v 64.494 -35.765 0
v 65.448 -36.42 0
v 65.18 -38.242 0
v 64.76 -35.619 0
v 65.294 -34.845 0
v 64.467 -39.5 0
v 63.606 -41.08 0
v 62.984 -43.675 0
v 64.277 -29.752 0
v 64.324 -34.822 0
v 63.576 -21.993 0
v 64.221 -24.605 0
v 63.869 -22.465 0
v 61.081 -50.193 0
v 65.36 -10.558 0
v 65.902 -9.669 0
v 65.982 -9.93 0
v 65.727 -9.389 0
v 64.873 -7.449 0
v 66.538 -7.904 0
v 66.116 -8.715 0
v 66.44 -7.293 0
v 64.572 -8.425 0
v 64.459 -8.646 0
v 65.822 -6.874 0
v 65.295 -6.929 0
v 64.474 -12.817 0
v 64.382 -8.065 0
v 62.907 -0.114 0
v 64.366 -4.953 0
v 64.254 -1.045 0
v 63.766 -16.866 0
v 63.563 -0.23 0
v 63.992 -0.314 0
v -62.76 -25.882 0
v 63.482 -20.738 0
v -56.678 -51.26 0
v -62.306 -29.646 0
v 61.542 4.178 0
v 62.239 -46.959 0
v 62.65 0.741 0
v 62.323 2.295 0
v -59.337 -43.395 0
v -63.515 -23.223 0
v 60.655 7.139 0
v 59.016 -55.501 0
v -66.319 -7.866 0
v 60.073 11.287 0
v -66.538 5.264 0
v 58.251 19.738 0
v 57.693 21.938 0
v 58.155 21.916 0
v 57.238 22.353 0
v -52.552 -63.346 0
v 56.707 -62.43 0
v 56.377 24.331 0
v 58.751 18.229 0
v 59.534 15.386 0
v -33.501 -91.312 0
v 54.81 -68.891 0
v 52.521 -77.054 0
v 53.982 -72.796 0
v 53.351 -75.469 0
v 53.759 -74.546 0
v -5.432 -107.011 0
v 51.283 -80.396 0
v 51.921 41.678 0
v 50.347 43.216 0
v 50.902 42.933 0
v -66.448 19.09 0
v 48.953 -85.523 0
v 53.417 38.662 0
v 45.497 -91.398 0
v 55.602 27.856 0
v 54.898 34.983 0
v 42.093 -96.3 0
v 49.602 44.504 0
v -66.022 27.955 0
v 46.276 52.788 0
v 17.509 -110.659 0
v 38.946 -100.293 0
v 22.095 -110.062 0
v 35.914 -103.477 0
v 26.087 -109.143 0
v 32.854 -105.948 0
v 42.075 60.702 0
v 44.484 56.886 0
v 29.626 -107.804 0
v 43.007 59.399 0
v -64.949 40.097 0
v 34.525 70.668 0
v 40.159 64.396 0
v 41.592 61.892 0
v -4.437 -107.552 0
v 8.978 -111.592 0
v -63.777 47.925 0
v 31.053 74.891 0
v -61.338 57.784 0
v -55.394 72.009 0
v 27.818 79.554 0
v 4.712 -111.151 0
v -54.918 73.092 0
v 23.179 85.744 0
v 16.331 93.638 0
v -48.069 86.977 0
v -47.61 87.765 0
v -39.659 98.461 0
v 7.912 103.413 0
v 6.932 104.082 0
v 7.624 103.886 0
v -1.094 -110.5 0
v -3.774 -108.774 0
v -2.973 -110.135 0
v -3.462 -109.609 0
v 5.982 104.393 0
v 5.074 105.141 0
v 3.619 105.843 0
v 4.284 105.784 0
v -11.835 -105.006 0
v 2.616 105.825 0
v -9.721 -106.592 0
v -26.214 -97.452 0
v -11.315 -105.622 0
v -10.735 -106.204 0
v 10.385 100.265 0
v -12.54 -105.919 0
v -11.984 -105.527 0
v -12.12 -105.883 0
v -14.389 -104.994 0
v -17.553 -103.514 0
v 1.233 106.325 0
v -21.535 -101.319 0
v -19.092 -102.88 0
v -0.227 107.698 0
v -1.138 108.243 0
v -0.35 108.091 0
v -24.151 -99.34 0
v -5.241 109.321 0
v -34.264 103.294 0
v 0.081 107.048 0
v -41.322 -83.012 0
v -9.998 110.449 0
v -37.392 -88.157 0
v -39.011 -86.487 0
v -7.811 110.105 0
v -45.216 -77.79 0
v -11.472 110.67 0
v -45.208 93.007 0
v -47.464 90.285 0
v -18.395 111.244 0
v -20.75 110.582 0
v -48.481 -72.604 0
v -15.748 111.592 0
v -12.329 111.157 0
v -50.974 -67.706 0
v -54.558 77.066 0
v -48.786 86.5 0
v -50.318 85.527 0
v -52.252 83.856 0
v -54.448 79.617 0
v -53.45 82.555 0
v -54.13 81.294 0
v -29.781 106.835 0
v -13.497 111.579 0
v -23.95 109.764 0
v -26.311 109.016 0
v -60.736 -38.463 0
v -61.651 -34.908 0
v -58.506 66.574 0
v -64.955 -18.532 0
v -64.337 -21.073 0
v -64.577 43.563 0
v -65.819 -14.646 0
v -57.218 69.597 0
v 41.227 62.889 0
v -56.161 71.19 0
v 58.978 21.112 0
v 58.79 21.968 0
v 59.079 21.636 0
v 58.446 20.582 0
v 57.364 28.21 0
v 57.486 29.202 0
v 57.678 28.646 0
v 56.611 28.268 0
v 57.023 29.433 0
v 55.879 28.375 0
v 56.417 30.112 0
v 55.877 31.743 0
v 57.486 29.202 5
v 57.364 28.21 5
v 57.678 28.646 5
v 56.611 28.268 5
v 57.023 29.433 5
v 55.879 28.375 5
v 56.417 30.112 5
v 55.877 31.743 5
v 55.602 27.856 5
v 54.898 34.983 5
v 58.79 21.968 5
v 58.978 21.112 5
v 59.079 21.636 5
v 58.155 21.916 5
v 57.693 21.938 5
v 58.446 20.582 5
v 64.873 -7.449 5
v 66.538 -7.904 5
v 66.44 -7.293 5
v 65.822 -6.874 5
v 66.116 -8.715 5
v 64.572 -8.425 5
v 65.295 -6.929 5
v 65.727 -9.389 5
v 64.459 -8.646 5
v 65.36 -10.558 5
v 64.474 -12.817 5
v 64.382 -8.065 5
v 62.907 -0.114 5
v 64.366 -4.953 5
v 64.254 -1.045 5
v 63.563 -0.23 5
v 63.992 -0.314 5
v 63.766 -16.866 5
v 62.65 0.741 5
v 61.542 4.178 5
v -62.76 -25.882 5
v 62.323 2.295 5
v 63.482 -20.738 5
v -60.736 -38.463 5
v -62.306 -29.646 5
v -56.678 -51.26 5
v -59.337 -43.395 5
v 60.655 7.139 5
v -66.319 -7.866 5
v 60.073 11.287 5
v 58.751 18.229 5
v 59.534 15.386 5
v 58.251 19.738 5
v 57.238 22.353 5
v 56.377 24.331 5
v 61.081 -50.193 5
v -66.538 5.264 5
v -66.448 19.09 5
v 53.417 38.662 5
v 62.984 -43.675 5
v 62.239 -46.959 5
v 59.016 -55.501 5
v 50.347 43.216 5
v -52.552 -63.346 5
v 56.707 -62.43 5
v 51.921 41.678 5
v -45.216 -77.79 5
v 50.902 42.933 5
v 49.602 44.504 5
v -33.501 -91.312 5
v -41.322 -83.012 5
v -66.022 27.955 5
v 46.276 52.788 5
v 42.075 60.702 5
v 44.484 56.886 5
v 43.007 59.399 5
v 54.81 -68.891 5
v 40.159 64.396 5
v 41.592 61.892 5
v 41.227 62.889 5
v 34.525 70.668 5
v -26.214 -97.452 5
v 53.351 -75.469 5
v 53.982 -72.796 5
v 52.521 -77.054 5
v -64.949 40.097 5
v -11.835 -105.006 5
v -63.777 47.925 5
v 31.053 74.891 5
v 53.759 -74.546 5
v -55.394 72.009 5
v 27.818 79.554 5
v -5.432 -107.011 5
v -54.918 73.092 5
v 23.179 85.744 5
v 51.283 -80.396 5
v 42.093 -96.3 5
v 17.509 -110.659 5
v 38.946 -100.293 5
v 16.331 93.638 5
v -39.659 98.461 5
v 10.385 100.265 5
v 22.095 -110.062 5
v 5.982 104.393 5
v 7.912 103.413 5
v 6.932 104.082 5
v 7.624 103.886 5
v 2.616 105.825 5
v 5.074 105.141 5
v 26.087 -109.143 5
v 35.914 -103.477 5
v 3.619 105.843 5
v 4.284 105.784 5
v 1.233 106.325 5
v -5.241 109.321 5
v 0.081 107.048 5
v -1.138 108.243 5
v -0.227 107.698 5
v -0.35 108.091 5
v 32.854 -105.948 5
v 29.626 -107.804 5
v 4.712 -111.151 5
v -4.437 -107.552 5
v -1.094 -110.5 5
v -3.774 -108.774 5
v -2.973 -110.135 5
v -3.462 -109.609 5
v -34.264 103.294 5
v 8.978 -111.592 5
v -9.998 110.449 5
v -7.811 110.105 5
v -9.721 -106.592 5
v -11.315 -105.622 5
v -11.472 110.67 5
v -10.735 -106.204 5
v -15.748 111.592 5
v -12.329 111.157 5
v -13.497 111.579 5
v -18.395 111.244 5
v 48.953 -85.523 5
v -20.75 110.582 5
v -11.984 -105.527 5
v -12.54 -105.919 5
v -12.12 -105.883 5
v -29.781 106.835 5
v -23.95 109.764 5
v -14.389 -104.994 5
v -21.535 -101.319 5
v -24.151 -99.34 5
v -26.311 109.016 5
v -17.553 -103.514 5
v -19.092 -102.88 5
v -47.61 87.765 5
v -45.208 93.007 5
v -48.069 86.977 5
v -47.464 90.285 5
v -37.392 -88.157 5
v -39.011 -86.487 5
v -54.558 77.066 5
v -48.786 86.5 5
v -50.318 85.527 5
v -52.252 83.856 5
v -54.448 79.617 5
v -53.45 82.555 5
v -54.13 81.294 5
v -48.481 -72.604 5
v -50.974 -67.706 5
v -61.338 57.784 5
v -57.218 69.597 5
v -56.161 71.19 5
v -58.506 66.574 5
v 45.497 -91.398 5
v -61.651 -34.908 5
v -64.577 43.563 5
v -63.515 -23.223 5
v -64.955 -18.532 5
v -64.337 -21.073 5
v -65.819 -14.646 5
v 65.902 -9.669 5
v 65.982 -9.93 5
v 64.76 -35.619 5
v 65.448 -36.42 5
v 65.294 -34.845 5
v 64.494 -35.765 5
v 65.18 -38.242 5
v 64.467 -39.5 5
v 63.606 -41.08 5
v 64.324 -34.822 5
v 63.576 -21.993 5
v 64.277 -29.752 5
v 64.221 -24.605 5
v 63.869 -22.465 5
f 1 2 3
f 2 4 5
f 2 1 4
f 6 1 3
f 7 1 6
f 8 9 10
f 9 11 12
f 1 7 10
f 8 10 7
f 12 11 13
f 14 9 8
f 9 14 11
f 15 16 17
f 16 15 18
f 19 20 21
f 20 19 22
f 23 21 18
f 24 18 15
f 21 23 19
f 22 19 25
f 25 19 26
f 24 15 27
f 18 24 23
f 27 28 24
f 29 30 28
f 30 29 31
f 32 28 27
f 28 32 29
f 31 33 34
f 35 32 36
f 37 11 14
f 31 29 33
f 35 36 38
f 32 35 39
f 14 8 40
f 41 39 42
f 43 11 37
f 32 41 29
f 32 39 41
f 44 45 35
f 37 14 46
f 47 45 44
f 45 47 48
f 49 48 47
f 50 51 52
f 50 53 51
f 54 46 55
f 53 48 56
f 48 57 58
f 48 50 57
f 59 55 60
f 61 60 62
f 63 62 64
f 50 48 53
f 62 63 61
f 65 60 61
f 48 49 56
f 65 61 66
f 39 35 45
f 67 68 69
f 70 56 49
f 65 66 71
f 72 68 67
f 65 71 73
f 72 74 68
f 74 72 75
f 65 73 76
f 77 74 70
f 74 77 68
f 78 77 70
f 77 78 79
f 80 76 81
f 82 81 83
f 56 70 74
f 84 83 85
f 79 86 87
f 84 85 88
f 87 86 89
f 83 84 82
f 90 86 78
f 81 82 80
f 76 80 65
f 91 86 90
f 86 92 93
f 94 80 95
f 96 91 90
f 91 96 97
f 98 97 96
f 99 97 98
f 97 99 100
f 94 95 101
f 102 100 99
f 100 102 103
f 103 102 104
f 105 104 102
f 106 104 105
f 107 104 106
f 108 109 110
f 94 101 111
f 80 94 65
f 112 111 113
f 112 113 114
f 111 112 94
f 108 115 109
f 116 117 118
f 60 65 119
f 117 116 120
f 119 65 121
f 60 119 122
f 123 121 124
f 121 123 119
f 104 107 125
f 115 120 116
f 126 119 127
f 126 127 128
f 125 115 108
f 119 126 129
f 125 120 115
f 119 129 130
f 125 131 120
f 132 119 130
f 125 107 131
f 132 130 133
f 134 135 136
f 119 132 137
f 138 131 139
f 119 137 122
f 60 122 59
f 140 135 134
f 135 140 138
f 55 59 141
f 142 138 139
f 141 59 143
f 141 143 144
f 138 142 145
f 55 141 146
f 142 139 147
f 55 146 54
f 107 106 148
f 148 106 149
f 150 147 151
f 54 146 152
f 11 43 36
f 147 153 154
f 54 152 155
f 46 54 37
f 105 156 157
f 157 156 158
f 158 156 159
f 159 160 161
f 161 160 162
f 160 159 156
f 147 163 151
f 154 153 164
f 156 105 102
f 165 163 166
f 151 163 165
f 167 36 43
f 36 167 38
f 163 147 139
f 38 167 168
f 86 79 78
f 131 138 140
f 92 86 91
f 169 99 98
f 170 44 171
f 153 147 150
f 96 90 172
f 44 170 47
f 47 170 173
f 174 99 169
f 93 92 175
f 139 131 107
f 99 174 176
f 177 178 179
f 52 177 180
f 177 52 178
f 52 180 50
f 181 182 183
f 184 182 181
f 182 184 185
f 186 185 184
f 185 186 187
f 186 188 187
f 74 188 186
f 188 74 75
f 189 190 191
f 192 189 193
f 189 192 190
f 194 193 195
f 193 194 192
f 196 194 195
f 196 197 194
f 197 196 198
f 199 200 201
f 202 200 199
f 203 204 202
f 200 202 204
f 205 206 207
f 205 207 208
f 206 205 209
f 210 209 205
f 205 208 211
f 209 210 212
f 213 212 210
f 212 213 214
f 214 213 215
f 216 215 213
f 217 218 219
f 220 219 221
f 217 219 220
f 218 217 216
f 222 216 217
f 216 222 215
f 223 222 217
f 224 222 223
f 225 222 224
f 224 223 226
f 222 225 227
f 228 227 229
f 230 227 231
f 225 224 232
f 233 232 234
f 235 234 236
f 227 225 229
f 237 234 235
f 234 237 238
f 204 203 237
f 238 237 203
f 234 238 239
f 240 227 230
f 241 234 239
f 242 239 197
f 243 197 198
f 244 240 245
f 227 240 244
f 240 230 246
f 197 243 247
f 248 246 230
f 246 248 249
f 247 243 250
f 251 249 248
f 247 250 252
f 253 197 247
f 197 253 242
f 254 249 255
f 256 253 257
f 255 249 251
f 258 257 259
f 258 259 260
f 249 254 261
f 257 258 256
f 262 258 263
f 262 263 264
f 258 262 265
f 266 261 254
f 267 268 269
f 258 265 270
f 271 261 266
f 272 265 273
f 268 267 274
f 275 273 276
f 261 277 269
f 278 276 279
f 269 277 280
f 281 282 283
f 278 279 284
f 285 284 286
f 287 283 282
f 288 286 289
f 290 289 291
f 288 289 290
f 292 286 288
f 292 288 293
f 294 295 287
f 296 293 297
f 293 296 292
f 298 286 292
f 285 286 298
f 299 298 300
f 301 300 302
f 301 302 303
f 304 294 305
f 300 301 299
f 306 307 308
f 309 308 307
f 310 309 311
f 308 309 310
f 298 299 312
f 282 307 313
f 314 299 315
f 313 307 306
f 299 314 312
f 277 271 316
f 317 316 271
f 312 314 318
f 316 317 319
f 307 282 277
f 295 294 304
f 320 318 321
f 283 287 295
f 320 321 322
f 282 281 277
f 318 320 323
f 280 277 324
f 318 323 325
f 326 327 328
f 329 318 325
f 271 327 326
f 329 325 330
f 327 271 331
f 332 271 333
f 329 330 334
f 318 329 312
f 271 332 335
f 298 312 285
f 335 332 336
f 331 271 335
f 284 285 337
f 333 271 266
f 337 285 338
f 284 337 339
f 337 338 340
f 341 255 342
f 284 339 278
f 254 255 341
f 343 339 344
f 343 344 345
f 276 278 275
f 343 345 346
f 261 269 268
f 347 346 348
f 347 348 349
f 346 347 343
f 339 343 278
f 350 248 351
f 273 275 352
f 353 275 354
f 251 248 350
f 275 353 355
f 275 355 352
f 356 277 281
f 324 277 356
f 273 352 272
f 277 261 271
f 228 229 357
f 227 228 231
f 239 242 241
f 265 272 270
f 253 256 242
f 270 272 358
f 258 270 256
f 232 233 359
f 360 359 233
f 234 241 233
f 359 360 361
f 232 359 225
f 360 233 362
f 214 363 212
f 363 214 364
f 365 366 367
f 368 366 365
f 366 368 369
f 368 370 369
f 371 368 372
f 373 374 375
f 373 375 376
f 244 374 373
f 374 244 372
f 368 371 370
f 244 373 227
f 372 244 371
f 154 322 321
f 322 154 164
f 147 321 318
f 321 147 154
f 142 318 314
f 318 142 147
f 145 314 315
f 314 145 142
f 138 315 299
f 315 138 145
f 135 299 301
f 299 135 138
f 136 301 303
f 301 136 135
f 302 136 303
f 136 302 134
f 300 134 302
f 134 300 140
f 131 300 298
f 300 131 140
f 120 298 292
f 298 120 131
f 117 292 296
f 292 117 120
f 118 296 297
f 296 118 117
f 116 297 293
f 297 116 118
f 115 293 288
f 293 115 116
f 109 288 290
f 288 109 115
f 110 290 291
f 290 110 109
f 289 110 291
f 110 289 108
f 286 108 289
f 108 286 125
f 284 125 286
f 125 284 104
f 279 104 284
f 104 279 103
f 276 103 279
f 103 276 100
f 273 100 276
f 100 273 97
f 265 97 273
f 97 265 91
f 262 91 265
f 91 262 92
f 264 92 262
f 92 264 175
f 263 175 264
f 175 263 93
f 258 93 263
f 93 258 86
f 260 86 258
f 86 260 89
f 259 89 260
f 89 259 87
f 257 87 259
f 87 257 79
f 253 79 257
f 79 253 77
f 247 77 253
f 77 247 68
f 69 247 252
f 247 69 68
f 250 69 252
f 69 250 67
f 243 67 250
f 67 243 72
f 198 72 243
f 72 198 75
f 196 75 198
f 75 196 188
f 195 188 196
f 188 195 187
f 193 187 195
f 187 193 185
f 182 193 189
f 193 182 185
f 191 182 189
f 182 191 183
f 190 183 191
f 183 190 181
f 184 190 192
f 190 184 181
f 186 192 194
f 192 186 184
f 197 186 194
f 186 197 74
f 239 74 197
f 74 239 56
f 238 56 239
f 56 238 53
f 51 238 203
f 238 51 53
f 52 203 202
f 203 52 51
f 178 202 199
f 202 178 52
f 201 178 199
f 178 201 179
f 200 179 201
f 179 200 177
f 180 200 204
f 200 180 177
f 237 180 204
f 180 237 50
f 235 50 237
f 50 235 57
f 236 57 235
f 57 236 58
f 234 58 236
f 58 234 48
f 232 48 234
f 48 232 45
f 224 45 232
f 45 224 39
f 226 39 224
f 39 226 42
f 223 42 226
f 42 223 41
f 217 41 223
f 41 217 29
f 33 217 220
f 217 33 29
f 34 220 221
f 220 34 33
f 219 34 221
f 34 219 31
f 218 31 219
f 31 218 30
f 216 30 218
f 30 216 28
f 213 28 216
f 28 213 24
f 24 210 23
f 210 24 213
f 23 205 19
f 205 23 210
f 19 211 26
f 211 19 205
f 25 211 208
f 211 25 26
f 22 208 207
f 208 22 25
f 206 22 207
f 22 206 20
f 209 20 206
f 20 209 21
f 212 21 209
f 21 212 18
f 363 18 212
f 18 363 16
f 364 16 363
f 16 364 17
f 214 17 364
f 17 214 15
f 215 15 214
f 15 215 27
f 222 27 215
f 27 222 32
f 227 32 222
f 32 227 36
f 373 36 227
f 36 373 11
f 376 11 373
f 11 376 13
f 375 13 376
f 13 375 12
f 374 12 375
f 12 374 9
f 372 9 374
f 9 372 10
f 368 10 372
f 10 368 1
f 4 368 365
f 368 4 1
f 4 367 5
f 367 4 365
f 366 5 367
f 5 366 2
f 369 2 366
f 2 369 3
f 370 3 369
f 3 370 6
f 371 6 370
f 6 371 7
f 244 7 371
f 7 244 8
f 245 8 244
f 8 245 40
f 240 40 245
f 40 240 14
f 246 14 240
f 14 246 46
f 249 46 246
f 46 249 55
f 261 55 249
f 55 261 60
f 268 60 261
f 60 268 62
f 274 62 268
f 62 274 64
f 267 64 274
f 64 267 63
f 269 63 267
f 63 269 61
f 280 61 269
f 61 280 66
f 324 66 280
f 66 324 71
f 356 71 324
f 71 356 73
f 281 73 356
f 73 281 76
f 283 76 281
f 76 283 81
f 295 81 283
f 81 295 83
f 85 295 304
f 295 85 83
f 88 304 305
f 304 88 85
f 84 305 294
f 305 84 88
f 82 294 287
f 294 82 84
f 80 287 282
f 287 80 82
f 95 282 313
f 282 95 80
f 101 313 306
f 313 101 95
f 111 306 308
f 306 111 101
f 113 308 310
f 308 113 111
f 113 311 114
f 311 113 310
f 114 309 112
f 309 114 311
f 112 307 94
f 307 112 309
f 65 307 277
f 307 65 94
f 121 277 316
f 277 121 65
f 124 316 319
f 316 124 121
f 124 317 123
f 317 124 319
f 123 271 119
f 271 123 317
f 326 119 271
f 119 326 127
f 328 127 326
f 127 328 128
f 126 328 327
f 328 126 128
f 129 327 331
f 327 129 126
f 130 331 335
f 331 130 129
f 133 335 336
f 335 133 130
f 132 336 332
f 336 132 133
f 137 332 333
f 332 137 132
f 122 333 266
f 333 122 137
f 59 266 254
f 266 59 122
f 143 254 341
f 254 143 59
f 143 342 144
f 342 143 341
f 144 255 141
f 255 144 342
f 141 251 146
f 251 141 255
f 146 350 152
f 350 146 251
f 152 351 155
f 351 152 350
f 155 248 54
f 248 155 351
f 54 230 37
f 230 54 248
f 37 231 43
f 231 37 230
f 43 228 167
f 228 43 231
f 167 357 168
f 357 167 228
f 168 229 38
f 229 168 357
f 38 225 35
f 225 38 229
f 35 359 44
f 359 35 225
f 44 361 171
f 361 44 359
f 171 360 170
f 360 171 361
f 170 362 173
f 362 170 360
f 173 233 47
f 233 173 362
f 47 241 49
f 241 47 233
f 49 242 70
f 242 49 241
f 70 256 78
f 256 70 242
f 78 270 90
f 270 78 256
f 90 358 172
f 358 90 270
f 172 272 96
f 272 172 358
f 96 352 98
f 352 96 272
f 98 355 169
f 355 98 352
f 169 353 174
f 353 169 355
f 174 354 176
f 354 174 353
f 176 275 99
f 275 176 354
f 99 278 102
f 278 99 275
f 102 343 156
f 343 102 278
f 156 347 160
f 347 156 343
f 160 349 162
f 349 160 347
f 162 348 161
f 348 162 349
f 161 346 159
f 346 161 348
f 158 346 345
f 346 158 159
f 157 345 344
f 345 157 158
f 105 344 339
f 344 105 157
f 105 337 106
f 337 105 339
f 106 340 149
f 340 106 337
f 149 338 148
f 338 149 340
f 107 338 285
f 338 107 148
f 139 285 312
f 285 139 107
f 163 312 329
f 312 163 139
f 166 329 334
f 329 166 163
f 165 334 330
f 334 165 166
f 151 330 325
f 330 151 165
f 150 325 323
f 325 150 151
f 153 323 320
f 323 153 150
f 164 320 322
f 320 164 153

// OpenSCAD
// Generated by inkscape None + inkscape-paths2openscad 0.27
// Sun Oct 29 23:48:49 2023 from "halloweeneeee3.tiff.svg"

// Module names are of the form poly_<inkscape-path-id>().  As a result,
// you can associate a polygon in this OpenSCAD program with the corresponding
// SVG element in the Inkscape document by looking for the XML element with
// the attribute id="inkscape-path-id".

// fudge value is used to ensure that subtracted solids are a tad taller
// in the z dimension than the polygon being subtracted from.  This helps
// keep the resulting .stl file manifold.
fudge = 0.1;
user_unit_scale_x = 0.2645833279742765;
user_unit_scale_y = 0.2645833279742765;
custom_scale_x = 1;
custom_scale_y = 1;
zsize = 5.00;
line_fn = 4;
min_line_width = 1.0;
line_width_scale = 1.0;
function min_line_mm(w) = max(min_line_width, w * line_width_scale) * 0.264583;


path1_0_center = [0.000000,0.000000];
path1_0_points = [[4.712305,111.150545],[-1.094011,110.499592],[-2.972932,110.135122],[-3.462188,109.608767],[-3.773607,108.774219],[-4.436979,107.552054],[-5.432227,107.011144],[-9.721137,106.591800],[-10.735377,106.203812],[-11.314670,105.621713],[-11.834643,105.005774],[-11.984051,105.527257],[-12.119685,105.883297],[-12.540277,105.918767],[-14.389428,104.994043],[-17.553047,103.514177],[-19.092556,102.880464],[-21.534606,101.319091],[-24.151081,99.339710],[-26.213867,97.451972],[-33.501068,91.312376],[-37.392389,88.156629],[-39.010903,86.486779],[-41.321477,83.011799],[-45.215736,77.789987],[-48.481218,72.604179],[-50.974430,67.705653],[-52.551875,63.345689],[-56.678330,51.259617],[-59.337010,43.394768],[-60.735652,38.462584],[-61.650982,34.907832],[-62.305677,29.646387],[-62.760126,25.882525],[-63.514729,23.223299],[-64.337219,21.072645],[-64.954891,18.531501],[-65.818815,14.645864],[-66.319039,7.866276],[-66.537764,-5.264370],[-66.447944,-19.090090],[-66.022534,-27.954901],[-64.949247,-40.097012],[-64.576605,-43.563098],[-63.777363,-47.924908],[-61.337496,-57.784557],[-58.506478,-66.573669],[-57.218296,-69.597308],[-56.161139,-71.189954],[-55.394537,-72.009377],[-54.917991,-73.092386],[-54.557512,-77.066229],[-54.447780,-79.616616],[-54.130244,-81.294058],[-53.449893,-82.554996],[-52.251719,-83.855870],[-50.317564,-85.526970],[-48.786417,-86.499607],[-48.069093,-86.977131],[-47.610319,-87.764921],[-47.463608,-90.285070],[-45.208186,-93.007362],[-39.659449,-98.460952],[-34.263785,-103.293508],[-29.781396,-106.835337],[-26.310565,-109.015727],[-23.949574,-109.763965],[-20.750313,-110.582106],[-18.395319,-111.244120],[-15.748063,-111.591923],[-13.496602,-111.578542],[-12.328996,-111.157007],[-11.471814,-110.670208],[-9.997877,-110.449507],[-7.811355,-110.105197],[-5.240945,-109.321219],[-1.137638,-108.242977],[-0.350486,-108.090624],[-0.226663,-107.697860],[0.081186,-107.047867],[1.233025,-106.325002],[2.616337,-105.824776],[3.618607,-105.842699],[4.284269,-105.783643],[5.074276,-105.140787],[5.982442,-104.393155],[6.932191,-104.082193],[7.623874,-103.885627],[7.911564,-103.413031],[10.384891,-100.265445],[16.331402,-93.637517],[23.178797,-85.744273],[27.818109,-79.554542],[31.053211,-74.891176],[34.524573,-70.667709],[40.158967,-64.396349],[41.226734,-62.889282],[41.592088,-61.891968],[42.074945,-60.702015],[43.007263,-59.398799],[44.483993,-56.886157],[46.275763,-52.788436],[49.602441,-44.503764],[50.347327,-43.216277],[50.901943,-42.932913],[51.921409,-41.678411],[53.416649,-38.661761],[54.898401,-34.983307],[55.877400,-31.743391],[56.416766,-30.111548],[57.023362,-29.432817],[57.485562,-29.201633],[57.677808,-28.645804],[57.364555,-28.210189],[56.611407,-28.268022],[55.878931,-28.375238],[55.601784,-27.856289],[56.377303,-24.331447],[57.238303,-22.352970],[57.692615,-21.937680],[58.154666,-21.916077],[58.790553,-21.967479],[59.078626,-21.636472],[58.977659,-21.111651],[58.446422,-20.581610],[58.251394,-19.738290],[58.750639,-18.229081],[59.534159,-15.386057],[60.073343,-11.287286],[60.655429,-7.139257],[61.542096,-4.177822],[62.322794,-2.295269],[62.650064,-0.741156],[62.906663,0.113753],[63.563431,0.230253],[63.991905,0.313739],[64.254280,1.045455],[64.365593,4.953078],[64.382272,8.065028],[64.459069,8.646005],[64.572444,8.425084],[64.873195,7.449324],[65.294587,6.929440],[65.821792,6.874420],[66.439977,7.293248],[66.537764,7.903900],[66.115942,8.715141],[65.726622,9.388975],[65.902530,9.669241],[65.981683,9.930291],[65.359738,10.557922],[64.473900,12.816744],[63.765883,16.866181],[63.482095,20.738189],[63.576289,21.992644],[63.868945,22.464726],[64.221009,24.604724],[64.277064,29.751929],[64.324272,34.821498],[64.494546,35.764667],[64.760298,35.618793],[65.293780,34.844801],[65.448267,36.420426],[65.180519,38.242275],[64.466664,39.500067],[63.605585,41.079630],[62.983941,43.675054],[62.238836,46.958797],[61.080981,50.193188],[59.015746,55.500659],[56.706660,62.429673],[54.809911,68.891064],[53.981690,72.795668],[53.758845,74.546542],[53.351215,75.469437],[52.521354,77.054138],[51.283366,80.396158],[48.953085,85.522824],[45.496989,91.398313],[42.093111,96.299677],[38.945897,100.293305],[35.913504,103.476813],[32.854088,105.947815],[29.625807,107.803925],[26.086817,109.142759],[22.095276,110.061931],[17.509341,110.659056],[8.977984,111.591923],[4.712305,111.150545],[4.712305,111.150545]];
module poly_path1(h, w, s, res=line_fn)
{
  scale([custom_scale_x, -custom_scale_y, 1]) union()
  {
    translate (path1_0_center) linear_extrude(height=h, convexity=10, scale=0.01*s)
      translate (-path1_0_center) polygon(path1_0_points);
  }
}

module halloween2_final(h)
{
  difference()
  {
    union()
    {
      translate ([0,0,0]) poly_path1(h, min_line_mm(0.1881051549233745), 100.0);
    }
    union()
    {
    }
  }
}

halloween2_final(zsize);
